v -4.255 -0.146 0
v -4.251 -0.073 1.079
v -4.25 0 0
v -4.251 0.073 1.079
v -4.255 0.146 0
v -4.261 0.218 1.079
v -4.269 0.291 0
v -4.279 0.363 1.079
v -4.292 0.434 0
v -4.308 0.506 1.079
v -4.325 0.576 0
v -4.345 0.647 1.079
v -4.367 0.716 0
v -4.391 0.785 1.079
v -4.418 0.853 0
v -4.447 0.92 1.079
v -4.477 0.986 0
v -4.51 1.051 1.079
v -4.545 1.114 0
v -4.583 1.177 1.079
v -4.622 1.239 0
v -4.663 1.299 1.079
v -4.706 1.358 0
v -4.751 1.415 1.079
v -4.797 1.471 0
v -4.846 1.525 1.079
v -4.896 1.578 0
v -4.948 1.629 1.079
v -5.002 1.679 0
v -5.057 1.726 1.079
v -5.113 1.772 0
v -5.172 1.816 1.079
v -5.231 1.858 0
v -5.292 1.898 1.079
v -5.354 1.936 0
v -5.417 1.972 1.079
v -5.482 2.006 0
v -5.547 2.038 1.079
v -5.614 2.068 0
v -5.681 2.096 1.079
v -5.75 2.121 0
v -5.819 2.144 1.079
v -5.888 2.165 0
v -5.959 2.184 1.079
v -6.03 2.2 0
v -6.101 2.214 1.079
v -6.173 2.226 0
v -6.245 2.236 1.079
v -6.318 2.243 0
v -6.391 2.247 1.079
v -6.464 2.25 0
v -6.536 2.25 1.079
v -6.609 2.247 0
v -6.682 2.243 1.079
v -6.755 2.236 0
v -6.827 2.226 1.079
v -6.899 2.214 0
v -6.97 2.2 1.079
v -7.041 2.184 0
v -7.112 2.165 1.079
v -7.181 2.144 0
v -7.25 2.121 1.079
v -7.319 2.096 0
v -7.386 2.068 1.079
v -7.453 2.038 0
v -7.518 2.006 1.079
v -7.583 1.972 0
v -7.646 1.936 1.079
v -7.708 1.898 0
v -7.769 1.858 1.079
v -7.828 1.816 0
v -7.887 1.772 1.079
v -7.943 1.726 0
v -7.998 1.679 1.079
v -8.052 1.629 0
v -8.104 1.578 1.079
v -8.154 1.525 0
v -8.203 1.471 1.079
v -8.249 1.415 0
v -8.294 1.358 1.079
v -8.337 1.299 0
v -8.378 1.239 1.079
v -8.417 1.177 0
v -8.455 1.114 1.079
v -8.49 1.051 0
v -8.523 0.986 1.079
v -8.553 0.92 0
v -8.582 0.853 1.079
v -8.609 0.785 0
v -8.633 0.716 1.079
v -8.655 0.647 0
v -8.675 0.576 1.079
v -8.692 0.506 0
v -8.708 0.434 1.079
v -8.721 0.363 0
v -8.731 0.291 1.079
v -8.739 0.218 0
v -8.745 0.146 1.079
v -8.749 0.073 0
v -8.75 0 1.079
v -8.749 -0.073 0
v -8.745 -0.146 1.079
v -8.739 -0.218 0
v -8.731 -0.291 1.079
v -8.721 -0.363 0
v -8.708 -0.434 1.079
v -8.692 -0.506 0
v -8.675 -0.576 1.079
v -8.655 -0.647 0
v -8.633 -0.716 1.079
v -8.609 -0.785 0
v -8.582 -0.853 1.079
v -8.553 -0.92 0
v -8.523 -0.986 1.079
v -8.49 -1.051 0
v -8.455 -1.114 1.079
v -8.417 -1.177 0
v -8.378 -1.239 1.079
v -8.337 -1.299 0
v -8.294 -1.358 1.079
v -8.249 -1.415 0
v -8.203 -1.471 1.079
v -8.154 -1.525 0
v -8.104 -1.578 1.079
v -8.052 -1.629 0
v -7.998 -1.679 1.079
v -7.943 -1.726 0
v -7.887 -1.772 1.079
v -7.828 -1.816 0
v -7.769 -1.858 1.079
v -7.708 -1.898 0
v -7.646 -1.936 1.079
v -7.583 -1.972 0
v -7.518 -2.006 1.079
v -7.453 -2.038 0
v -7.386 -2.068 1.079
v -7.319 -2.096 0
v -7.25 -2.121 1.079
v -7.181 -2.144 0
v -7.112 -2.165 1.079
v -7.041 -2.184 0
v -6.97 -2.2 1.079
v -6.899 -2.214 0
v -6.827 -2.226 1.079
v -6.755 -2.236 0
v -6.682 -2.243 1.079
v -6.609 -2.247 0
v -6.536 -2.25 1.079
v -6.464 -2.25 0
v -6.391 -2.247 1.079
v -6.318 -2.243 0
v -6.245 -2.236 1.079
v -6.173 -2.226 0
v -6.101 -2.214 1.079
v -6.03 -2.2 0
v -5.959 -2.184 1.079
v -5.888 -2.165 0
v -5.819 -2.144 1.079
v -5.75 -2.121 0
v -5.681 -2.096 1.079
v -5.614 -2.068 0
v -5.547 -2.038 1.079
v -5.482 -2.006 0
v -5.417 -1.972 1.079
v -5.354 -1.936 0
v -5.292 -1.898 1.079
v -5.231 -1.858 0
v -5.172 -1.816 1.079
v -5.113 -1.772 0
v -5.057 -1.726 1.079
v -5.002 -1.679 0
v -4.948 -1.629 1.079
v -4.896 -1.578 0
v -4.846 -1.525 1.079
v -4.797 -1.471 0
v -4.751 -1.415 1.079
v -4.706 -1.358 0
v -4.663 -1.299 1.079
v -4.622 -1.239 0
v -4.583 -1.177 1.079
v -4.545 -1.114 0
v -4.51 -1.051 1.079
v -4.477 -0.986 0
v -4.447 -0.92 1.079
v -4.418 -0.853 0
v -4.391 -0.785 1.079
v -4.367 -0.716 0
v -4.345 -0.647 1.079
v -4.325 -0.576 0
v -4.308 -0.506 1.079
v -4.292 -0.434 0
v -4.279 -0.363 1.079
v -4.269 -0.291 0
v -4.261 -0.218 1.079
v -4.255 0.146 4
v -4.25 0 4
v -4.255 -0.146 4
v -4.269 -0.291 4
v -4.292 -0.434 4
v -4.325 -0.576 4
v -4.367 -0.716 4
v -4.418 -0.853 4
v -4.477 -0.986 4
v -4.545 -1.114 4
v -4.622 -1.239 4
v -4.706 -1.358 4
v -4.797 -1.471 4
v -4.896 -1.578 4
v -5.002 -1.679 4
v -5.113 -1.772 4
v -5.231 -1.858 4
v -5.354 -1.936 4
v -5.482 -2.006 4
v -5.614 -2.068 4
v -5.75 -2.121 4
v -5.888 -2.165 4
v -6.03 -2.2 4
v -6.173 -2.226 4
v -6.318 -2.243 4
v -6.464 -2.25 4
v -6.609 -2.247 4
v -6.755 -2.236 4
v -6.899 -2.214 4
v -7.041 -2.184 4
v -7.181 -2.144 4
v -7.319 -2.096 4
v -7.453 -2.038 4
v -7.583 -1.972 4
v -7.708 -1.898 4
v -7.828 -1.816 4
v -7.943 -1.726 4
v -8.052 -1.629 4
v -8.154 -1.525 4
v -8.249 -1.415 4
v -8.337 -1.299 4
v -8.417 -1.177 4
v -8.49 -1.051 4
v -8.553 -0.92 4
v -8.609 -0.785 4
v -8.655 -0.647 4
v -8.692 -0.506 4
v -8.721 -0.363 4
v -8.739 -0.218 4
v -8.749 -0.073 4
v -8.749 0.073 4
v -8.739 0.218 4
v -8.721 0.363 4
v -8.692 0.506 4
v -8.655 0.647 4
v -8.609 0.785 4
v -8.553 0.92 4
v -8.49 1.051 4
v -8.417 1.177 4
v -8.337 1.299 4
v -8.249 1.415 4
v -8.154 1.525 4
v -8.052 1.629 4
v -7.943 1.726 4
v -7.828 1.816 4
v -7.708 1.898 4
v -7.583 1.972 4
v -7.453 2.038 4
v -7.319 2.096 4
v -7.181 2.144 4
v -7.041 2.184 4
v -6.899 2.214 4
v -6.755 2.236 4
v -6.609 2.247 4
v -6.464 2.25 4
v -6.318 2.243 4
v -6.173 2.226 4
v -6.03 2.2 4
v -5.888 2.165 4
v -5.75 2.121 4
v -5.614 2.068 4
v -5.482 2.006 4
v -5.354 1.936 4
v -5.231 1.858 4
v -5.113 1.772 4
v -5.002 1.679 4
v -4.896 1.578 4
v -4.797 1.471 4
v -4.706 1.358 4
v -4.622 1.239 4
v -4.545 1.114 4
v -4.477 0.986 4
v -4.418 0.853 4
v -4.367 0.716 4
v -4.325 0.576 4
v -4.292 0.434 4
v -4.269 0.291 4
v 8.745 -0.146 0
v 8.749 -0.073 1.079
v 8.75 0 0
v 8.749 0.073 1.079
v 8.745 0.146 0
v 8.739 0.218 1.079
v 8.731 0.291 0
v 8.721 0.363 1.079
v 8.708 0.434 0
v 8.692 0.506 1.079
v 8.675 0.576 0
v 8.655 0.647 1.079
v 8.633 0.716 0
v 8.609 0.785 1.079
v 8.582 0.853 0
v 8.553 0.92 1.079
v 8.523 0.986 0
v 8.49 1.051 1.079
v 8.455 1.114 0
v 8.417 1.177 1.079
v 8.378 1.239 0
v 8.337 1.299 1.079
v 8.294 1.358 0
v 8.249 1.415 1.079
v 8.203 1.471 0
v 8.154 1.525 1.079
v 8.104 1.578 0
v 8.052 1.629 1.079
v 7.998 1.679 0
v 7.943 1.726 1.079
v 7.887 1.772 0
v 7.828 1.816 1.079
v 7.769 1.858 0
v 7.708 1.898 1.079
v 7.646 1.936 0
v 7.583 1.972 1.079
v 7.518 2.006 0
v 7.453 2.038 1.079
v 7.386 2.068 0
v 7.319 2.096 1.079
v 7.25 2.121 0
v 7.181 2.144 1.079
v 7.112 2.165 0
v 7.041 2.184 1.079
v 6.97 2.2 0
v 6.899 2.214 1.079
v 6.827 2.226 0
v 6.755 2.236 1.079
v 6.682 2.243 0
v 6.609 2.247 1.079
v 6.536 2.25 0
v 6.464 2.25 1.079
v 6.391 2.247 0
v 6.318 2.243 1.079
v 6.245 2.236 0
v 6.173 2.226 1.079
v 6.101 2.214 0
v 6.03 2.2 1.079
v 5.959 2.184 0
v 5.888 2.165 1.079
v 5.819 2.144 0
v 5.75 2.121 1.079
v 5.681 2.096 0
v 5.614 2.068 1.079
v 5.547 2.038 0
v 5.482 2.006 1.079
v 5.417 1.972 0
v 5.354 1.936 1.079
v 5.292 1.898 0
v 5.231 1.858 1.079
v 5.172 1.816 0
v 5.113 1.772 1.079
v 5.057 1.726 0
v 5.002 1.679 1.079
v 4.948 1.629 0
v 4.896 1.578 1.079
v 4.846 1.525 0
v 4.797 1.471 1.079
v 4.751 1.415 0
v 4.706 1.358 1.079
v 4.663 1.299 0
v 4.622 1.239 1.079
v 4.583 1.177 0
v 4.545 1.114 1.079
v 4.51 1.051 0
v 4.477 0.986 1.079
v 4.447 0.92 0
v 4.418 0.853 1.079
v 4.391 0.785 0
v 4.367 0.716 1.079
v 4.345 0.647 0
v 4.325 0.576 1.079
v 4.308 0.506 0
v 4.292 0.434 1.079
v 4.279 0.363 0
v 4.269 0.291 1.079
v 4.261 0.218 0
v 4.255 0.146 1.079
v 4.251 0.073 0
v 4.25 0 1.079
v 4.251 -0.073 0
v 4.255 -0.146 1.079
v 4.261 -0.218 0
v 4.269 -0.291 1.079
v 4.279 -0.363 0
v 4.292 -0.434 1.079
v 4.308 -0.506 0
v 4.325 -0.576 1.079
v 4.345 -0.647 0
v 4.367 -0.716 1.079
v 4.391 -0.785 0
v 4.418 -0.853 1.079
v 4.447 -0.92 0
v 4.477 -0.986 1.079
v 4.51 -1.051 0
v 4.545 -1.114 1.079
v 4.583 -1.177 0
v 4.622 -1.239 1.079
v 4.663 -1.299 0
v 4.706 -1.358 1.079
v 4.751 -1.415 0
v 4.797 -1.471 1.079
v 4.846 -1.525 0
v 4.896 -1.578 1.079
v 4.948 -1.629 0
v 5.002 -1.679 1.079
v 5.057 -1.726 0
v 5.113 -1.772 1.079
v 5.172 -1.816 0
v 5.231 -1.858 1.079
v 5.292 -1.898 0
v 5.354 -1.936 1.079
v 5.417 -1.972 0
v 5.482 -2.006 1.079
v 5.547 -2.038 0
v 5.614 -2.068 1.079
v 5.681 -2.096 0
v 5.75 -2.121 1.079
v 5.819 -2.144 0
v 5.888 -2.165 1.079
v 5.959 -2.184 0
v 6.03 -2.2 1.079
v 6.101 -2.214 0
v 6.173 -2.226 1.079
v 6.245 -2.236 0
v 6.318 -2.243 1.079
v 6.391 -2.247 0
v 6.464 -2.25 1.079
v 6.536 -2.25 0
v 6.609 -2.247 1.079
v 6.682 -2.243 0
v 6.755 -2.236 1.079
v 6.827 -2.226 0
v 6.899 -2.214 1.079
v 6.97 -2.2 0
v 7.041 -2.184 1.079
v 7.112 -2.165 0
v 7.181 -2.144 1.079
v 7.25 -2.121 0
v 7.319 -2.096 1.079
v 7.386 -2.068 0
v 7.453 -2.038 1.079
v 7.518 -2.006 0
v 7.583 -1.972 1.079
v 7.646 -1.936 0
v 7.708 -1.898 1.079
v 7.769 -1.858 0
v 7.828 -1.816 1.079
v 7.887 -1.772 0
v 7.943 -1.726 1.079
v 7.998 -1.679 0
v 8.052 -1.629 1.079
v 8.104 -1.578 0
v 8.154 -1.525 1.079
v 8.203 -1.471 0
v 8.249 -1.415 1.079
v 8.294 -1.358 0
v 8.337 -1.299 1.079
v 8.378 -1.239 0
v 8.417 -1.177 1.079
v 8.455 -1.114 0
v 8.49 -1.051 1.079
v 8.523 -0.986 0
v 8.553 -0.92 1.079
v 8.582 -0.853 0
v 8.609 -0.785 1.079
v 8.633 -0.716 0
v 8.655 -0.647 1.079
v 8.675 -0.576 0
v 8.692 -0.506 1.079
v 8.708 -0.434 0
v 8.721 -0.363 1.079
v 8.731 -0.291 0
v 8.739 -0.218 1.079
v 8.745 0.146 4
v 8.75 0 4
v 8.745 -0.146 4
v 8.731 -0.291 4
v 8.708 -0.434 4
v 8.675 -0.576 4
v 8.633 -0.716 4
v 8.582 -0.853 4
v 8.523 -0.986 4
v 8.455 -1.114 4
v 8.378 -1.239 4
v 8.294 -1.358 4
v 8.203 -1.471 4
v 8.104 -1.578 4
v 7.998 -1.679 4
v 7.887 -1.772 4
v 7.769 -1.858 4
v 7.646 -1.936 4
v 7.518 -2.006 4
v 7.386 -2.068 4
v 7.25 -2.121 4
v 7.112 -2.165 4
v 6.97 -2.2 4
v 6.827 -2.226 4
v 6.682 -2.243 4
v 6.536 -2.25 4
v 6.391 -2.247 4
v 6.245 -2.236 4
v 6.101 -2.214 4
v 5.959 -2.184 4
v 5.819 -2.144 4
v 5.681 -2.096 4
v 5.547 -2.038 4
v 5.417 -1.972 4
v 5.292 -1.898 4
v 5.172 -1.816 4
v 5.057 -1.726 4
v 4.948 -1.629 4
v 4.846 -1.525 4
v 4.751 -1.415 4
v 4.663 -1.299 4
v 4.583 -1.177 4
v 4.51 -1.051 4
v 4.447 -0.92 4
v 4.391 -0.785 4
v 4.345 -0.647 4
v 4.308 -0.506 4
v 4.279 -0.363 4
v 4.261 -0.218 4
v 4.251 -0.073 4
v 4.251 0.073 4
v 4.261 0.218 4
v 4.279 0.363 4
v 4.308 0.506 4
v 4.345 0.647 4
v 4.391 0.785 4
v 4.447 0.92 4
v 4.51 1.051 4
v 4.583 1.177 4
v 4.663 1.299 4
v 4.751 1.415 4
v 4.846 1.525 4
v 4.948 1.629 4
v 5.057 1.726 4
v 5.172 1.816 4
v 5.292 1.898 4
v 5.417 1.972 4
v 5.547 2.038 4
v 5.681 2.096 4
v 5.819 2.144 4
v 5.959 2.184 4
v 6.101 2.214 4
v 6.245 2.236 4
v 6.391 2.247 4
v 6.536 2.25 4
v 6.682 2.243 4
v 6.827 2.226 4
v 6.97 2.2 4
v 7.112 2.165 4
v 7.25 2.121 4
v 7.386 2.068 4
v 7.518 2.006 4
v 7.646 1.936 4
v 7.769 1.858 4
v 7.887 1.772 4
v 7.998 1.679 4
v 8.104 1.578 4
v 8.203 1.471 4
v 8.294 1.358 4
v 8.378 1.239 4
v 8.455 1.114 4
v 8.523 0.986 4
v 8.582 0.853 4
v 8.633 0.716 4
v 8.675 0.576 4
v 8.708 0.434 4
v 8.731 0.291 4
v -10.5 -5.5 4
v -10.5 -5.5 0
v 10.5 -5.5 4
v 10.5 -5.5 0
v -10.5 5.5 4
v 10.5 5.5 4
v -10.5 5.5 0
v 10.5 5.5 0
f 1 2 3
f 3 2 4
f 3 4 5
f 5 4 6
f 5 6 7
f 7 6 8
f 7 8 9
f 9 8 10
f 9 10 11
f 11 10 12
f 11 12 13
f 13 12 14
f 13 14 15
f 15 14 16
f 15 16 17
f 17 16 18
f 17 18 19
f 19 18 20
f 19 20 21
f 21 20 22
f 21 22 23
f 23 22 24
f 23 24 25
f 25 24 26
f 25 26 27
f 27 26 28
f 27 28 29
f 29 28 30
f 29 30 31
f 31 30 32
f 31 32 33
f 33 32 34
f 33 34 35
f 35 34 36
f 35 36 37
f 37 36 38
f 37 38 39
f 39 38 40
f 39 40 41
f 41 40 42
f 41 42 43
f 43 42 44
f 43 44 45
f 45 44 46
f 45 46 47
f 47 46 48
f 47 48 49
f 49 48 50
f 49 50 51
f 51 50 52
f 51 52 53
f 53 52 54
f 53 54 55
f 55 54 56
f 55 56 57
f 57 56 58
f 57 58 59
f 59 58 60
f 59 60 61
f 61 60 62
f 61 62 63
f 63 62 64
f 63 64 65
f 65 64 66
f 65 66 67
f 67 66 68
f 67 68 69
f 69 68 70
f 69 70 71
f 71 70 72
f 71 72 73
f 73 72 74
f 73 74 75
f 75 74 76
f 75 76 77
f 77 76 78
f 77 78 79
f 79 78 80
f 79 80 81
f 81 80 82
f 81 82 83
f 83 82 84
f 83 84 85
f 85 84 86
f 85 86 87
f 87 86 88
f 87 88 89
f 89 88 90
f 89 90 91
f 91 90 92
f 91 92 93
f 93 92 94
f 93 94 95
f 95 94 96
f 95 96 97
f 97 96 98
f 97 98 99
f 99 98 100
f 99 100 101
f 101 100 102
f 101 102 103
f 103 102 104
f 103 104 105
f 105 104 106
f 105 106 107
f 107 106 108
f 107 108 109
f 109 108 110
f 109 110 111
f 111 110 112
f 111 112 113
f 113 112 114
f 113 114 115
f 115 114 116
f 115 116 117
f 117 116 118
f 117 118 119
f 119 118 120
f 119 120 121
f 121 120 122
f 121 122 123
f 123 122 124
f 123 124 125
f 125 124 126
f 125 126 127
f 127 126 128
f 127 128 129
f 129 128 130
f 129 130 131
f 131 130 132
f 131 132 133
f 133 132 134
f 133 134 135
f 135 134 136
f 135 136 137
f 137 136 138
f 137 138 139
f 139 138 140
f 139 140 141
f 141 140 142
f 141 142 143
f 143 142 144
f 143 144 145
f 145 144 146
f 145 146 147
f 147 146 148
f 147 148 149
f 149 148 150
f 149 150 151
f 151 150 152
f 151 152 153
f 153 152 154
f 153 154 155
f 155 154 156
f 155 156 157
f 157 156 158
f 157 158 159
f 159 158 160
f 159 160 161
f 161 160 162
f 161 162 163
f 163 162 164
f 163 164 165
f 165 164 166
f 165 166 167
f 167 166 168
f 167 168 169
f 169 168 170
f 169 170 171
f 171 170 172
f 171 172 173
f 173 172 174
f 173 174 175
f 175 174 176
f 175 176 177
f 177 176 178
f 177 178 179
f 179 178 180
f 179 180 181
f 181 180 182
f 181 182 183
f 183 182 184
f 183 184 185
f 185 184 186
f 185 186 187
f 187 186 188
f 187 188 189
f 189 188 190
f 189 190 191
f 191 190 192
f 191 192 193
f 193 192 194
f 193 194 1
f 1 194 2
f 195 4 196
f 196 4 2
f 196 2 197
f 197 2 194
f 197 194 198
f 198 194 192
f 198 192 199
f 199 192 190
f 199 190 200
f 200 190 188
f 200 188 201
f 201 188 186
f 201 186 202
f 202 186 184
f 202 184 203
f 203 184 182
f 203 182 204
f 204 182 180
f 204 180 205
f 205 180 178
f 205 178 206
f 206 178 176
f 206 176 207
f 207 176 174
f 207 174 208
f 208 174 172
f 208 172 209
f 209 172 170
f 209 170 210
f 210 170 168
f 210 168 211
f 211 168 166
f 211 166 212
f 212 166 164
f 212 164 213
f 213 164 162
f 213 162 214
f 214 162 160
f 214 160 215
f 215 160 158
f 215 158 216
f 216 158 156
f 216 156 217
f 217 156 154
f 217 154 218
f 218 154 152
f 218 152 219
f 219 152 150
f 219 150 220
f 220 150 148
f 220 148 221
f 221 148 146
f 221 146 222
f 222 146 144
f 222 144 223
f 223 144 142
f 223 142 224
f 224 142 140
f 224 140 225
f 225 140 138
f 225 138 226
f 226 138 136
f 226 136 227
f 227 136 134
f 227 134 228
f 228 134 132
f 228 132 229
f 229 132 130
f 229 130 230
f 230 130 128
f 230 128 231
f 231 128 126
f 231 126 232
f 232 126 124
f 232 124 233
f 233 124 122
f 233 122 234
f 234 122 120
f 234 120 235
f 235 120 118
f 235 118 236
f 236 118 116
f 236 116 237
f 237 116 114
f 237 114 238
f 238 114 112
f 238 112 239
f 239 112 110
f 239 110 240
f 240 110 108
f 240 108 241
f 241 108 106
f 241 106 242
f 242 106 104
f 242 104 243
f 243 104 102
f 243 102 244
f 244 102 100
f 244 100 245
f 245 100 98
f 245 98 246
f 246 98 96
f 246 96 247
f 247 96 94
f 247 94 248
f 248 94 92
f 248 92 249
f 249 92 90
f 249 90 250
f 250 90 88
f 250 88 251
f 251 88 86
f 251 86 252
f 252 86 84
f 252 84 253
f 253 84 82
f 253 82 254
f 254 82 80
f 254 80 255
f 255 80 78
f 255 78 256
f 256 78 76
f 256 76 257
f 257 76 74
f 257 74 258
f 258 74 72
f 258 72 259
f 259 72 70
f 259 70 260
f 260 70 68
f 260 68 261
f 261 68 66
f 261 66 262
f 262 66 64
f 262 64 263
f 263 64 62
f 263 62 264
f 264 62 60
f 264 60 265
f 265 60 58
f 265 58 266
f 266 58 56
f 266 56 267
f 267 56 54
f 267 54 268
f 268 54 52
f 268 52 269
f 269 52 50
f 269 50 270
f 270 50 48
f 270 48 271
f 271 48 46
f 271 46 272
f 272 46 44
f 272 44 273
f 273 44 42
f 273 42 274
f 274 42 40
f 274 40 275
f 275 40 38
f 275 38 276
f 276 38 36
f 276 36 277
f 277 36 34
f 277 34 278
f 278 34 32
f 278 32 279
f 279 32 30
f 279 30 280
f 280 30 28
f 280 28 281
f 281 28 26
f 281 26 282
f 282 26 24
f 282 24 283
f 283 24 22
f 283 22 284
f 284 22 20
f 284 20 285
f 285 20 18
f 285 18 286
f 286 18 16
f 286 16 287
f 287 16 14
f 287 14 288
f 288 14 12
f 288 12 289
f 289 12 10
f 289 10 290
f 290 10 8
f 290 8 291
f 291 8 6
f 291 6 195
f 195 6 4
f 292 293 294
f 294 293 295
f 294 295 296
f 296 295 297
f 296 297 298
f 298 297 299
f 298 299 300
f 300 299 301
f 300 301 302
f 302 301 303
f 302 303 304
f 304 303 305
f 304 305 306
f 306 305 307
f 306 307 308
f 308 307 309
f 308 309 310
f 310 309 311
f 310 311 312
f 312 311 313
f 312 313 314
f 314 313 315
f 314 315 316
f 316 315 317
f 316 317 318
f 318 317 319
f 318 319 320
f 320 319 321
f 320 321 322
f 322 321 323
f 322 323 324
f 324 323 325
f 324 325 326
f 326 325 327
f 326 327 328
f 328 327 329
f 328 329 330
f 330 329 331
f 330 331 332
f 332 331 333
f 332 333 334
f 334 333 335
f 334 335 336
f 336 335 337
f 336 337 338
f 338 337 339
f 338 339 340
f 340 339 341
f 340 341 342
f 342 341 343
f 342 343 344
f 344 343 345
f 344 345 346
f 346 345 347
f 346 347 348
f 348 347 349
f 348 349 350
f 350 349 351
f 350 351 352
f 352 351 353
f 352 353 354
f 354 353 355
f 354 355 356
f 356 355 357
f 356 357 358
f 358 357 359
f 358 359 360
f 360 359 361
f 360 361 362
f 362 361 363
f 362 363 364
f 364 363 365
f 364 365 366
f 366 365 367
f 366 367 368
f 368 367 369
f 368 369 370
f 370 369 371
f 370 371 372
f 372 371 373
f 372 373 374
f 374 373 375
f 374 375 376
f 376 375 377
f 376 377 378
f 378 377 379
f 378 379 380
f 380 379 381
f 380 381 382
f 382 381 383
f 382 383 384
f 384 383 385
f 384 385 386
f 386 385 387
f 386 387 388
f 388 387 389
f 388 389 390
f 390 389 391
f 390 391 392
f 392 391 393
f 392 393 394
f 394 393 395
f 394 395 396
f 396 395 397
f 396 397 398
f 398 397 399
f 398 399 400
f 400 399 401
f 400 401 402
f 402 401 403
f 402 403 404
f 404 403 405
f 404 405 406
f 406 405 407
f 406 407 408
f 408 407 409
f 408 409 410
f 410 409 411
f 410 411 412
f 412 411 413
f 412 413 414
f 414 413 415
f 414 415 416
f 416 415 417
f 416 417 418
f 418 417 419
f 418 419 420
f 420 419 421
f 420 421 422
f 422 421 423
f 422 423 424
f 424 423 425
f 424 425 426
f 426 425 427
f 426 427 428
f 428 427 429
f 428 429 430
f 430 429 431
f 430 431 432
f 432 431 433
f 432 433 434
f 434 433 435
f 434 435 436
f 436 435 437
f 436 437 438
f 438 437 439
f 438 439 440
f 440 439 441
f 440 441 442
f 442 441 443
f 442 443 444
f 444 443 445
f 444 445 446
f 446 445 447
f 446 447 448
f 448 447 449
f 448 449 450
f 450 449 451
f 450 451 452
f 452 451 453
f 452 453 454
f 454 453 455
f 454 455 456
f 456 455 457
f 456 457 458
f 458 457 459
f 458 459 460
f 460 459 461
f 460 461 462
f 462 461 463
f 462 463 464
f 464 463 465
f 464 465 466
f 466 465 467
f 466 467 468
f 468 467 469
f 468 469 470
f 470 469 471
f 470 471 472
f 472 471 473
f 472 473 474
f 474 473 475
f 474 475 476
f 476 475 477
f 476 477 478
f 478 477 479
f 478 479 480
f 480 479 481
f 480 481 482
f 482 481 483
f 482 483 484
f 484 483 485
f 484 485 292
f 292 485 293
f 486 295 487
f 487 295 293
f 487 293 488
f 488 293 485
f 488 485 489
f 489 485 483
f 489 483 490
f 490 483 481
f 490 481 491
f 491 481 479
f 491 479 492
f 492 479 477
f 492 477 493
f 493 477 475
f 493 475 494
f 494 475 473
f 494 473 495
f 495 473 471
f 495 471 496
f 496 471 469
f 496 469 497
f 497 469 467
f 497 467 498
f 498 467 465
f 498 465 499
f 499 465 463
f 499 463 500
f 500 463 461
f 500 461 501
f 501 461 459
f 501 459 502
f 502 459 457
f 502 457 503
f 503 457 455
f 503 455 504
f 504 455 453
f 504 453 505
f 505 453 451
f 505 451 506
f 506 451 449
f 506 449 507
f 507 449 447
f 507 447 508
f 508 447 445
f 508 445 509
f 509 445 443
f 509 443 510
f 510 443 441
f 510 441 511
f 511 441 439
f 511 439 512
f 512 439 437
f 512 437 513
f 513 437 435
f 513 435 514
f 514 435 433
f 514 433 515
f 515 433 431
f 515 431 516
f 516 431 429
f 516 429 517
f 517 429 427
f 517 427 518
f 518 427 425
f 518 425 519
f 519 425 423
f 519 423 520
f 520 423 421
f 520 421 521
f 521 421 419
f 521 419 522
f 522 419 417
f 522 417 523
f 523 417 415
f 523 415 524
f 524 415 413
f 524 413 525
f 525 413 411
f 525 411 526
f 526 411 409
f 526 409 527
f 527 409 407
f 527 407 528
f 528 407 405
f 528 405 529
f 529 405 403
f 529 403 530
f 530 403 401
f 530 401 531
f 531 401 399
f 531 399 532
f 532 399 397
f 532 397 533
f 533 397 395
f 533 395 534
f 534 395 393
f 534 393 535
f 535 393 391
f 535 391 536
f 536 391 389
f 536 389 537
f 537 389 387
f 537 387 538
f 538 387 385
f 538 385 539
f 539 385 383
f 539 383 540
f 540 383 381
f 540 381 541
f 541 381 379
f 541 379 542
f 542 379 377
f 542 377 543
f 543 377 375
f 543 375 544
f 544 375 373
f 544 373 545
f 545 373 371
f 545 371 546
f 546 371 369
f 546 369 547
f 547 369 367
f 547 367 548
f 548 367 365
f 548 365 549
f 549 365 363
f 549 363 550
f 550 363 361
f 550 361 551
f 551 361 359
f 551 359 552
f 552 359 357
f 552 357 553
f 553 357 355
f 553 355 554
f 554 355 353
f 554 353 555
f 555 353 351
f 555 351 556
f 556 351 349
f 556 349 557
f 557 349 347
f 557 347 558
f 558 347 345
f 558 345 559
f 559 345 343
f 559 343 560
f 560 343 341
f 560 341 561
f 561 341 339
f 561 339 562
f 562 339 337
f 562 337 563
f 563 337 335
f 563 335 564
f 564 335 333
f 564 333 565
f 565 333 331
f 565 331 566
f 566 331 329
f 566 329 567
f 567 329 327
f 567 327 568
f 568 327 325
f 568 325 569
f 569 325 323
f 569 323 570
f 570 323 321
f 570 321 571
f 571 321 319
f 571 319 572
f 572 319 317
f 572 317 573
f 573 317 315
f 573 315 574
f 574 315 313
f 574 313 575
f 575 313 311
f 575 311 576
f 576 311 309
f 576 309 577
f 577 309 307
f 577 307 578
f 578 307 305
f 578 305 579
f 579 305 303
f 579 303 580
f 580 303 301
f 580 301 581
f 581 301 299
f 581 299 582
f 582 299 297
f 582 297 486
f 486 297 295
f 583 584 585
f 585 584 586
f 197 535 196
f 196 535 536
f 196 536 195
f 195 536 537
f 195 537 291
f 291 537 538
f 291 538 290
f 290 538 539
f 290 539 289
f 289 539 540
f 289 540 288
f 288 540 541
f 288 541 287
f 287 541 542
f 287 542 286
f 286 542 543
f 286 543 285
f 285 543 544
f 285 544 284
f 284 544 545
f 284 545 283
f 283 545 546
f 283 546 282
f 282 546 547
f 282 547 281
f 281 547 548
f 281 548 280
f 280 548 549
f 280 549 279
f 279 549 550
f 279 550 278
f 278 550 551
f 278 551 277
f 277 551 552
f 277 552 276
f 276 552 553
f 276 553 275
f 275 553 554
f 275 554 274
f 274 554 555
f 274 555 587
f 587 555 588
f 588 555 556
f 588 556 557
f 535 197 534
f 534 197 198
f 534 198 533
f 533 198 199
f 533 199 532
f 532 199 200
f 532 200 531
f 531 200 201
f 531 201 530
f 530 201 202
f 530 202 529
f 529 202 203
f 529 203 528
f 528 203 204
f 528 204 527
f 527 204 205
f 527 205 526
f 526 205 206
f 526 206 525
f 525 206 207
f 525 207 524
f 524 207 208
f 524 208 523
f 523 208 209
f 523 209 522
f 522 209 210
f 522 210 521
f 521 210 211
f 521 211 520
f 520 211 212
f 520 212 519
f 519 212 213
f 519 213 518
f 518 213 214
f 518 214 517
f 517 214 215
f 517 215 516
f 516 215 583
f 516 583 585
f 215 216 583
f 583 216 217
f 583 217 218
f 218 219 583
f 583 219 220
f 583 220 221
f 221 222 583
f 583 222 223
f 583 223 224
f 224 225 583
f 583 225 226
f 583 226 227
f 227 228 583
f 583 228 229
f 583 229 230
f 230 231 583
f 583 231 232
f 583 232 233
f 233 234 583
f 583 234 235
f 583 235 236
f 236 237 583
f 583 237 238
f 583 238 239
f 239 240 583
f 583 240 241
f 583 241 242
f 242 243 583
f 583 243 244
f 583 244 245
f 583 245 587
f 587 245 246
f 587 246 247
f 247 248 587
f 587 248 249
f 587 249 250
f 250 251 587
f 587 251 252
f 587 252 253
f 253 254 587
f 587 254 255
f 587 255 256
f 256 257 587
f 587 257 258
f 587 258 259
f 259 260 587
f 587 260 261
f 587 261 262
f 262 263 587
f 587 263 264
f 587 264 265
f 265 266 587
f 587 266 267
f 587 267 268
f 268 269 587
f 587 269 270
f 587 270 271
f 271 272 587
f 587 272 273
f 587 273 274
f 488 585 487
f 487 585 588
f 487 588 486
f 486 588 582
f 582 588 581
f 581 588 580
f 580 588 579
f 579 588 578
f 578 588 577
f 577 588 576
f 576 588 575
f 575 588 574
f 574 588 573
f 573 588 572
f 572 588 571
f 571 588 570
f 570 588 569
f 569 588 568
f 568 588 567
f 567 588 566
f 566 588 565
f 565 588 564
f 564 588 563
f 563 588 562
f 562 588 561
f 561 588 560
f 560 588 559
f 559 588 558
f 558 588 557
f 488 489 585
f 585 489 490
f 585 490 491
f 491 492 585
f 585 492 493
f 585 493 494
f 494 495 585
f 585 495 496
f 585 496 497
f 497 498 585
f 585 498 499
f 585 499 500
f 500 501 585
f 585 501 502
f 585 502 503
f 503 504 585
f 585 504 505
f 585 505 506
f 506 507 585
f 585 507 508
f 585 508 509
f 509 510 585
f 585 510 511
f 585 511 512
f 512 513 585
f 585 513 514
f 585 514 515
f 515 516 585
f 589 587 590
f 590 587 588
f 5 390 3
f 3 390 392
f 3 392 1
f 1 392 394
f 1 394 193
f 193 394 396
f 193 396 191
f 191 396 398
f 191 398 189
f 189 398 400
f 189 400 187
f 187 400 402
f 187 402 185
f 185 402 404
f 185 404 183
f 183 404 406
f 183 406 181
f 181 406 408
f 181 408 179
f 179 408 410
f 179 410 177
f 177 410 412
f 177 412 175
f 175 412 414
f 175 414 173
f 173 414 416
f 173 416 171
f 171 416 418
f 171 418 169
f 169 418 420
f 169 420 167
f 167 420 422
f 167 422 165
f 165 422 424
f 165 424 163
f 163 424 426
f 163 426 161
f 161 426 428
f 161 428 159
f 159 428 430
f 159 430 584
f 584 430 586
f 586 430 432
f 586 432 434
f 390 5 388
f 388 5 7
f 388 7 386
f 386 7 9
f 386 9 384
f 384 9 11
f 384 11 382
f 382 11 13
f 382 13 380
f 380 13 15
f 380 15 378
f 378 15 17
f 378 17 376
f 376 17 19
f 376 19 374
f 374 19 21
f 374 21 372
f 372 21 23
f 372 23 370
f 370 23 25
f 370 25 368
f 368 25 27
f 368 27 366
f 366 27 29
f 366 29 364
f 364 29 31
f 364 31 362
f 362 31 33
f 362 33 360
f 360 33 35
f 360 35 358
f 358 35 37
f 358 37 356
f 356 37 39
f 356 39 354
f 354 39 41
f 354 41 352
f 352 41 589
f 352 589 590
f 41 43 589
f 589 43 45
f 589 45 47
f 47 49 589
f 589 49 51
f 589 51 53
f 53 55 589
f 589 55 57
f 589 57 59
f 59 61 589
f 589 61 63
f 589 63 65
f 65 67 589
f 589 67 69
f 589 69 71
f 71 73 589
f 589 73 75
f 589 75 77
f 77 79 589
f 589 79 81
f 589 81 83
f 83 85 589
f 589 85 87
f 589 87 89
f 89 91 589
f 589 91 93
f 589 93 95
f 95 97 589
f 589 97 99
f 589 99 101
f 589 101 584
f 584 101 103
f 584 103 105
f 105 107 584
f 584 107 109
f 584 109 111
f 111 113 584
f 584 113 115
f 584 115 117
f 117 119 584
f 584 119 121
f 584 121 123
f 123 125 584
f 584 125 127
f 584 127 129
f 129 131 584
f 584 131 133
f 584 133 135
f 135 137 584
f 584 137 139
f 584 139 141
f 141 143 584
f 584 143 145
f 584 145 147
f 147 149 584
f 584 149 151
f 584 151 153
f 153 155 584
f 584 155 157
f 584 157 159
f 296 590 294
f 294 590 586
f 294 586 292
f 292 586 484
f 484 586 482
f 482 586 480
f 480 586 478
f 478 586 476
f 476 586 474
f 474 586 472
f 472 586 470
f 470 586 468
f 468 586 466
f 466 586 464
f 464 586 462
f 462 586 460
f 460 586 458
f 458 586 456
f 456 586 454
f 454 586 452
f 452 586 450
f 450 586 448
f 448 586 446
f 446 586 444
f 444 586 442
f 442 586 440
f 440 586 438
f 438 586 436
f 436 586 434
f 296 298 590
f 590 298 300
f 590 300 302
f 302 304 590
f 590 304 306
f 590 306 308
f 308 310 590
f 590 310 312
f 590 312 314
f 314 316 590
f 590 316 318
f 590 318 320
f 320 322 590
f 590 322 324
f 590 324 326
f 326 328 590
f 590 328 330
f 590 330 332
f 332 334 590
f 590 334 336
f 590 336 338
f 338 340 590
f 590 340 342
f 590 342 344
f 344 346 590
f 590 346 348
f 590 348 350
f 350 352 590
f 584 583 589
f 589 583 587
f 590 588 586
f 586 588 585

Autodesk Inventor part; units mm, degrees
ref_plane "XZ Plane" through (0, 0, 0) normal (0, 1, 0) x (-1, 0, 0)
ref_plane "XY Plane" through (0, 0, 0) normal (0, 0, 1) x (1, 0, 0)
ref_plane "Work Plane1" through (-10.5, 0, 0) normal (1, 0, 0) x (0, 1, 0)
sketch "Sketch1" plane through (-10.5, 0, 0) normal (1, 0, 0) x (0, 1, 0)
  line L0 (5.5, 0) -> (-5.5, 0)
  line L1 (5.5, 4) -> (5.5, 0)
  line L2 (-5.5, 4) -> (-5.5, 0)
  line L3 (5.5, 4) -> (-5.5, 4)
extrude "Extrusion1" add sketch "Sketch1" along normal blind 21 draft 0
hole "Hole2" at (6.5, 0, 4) direction (0, 0, -1) diameter 4.5 depth 4
sketch "Sketch2" plane through (-10.5, -5.5, 4) normal (0, 0, 1) x (1, 0, 0)
  point P0 (17, 5.5)
hole "Hole1" at (-6.5, 0, 4) direction (0, 0, -1) diameter 4.5 depth 4
sketch "Sketch3" plane through (-10.5, -5.5, 4) normal (0, 0, 1) x (1, 0, 0)
  point P0 (4, 5.5)
properties part number "Y-axis Belt clamp" material "ASA Plastic"
